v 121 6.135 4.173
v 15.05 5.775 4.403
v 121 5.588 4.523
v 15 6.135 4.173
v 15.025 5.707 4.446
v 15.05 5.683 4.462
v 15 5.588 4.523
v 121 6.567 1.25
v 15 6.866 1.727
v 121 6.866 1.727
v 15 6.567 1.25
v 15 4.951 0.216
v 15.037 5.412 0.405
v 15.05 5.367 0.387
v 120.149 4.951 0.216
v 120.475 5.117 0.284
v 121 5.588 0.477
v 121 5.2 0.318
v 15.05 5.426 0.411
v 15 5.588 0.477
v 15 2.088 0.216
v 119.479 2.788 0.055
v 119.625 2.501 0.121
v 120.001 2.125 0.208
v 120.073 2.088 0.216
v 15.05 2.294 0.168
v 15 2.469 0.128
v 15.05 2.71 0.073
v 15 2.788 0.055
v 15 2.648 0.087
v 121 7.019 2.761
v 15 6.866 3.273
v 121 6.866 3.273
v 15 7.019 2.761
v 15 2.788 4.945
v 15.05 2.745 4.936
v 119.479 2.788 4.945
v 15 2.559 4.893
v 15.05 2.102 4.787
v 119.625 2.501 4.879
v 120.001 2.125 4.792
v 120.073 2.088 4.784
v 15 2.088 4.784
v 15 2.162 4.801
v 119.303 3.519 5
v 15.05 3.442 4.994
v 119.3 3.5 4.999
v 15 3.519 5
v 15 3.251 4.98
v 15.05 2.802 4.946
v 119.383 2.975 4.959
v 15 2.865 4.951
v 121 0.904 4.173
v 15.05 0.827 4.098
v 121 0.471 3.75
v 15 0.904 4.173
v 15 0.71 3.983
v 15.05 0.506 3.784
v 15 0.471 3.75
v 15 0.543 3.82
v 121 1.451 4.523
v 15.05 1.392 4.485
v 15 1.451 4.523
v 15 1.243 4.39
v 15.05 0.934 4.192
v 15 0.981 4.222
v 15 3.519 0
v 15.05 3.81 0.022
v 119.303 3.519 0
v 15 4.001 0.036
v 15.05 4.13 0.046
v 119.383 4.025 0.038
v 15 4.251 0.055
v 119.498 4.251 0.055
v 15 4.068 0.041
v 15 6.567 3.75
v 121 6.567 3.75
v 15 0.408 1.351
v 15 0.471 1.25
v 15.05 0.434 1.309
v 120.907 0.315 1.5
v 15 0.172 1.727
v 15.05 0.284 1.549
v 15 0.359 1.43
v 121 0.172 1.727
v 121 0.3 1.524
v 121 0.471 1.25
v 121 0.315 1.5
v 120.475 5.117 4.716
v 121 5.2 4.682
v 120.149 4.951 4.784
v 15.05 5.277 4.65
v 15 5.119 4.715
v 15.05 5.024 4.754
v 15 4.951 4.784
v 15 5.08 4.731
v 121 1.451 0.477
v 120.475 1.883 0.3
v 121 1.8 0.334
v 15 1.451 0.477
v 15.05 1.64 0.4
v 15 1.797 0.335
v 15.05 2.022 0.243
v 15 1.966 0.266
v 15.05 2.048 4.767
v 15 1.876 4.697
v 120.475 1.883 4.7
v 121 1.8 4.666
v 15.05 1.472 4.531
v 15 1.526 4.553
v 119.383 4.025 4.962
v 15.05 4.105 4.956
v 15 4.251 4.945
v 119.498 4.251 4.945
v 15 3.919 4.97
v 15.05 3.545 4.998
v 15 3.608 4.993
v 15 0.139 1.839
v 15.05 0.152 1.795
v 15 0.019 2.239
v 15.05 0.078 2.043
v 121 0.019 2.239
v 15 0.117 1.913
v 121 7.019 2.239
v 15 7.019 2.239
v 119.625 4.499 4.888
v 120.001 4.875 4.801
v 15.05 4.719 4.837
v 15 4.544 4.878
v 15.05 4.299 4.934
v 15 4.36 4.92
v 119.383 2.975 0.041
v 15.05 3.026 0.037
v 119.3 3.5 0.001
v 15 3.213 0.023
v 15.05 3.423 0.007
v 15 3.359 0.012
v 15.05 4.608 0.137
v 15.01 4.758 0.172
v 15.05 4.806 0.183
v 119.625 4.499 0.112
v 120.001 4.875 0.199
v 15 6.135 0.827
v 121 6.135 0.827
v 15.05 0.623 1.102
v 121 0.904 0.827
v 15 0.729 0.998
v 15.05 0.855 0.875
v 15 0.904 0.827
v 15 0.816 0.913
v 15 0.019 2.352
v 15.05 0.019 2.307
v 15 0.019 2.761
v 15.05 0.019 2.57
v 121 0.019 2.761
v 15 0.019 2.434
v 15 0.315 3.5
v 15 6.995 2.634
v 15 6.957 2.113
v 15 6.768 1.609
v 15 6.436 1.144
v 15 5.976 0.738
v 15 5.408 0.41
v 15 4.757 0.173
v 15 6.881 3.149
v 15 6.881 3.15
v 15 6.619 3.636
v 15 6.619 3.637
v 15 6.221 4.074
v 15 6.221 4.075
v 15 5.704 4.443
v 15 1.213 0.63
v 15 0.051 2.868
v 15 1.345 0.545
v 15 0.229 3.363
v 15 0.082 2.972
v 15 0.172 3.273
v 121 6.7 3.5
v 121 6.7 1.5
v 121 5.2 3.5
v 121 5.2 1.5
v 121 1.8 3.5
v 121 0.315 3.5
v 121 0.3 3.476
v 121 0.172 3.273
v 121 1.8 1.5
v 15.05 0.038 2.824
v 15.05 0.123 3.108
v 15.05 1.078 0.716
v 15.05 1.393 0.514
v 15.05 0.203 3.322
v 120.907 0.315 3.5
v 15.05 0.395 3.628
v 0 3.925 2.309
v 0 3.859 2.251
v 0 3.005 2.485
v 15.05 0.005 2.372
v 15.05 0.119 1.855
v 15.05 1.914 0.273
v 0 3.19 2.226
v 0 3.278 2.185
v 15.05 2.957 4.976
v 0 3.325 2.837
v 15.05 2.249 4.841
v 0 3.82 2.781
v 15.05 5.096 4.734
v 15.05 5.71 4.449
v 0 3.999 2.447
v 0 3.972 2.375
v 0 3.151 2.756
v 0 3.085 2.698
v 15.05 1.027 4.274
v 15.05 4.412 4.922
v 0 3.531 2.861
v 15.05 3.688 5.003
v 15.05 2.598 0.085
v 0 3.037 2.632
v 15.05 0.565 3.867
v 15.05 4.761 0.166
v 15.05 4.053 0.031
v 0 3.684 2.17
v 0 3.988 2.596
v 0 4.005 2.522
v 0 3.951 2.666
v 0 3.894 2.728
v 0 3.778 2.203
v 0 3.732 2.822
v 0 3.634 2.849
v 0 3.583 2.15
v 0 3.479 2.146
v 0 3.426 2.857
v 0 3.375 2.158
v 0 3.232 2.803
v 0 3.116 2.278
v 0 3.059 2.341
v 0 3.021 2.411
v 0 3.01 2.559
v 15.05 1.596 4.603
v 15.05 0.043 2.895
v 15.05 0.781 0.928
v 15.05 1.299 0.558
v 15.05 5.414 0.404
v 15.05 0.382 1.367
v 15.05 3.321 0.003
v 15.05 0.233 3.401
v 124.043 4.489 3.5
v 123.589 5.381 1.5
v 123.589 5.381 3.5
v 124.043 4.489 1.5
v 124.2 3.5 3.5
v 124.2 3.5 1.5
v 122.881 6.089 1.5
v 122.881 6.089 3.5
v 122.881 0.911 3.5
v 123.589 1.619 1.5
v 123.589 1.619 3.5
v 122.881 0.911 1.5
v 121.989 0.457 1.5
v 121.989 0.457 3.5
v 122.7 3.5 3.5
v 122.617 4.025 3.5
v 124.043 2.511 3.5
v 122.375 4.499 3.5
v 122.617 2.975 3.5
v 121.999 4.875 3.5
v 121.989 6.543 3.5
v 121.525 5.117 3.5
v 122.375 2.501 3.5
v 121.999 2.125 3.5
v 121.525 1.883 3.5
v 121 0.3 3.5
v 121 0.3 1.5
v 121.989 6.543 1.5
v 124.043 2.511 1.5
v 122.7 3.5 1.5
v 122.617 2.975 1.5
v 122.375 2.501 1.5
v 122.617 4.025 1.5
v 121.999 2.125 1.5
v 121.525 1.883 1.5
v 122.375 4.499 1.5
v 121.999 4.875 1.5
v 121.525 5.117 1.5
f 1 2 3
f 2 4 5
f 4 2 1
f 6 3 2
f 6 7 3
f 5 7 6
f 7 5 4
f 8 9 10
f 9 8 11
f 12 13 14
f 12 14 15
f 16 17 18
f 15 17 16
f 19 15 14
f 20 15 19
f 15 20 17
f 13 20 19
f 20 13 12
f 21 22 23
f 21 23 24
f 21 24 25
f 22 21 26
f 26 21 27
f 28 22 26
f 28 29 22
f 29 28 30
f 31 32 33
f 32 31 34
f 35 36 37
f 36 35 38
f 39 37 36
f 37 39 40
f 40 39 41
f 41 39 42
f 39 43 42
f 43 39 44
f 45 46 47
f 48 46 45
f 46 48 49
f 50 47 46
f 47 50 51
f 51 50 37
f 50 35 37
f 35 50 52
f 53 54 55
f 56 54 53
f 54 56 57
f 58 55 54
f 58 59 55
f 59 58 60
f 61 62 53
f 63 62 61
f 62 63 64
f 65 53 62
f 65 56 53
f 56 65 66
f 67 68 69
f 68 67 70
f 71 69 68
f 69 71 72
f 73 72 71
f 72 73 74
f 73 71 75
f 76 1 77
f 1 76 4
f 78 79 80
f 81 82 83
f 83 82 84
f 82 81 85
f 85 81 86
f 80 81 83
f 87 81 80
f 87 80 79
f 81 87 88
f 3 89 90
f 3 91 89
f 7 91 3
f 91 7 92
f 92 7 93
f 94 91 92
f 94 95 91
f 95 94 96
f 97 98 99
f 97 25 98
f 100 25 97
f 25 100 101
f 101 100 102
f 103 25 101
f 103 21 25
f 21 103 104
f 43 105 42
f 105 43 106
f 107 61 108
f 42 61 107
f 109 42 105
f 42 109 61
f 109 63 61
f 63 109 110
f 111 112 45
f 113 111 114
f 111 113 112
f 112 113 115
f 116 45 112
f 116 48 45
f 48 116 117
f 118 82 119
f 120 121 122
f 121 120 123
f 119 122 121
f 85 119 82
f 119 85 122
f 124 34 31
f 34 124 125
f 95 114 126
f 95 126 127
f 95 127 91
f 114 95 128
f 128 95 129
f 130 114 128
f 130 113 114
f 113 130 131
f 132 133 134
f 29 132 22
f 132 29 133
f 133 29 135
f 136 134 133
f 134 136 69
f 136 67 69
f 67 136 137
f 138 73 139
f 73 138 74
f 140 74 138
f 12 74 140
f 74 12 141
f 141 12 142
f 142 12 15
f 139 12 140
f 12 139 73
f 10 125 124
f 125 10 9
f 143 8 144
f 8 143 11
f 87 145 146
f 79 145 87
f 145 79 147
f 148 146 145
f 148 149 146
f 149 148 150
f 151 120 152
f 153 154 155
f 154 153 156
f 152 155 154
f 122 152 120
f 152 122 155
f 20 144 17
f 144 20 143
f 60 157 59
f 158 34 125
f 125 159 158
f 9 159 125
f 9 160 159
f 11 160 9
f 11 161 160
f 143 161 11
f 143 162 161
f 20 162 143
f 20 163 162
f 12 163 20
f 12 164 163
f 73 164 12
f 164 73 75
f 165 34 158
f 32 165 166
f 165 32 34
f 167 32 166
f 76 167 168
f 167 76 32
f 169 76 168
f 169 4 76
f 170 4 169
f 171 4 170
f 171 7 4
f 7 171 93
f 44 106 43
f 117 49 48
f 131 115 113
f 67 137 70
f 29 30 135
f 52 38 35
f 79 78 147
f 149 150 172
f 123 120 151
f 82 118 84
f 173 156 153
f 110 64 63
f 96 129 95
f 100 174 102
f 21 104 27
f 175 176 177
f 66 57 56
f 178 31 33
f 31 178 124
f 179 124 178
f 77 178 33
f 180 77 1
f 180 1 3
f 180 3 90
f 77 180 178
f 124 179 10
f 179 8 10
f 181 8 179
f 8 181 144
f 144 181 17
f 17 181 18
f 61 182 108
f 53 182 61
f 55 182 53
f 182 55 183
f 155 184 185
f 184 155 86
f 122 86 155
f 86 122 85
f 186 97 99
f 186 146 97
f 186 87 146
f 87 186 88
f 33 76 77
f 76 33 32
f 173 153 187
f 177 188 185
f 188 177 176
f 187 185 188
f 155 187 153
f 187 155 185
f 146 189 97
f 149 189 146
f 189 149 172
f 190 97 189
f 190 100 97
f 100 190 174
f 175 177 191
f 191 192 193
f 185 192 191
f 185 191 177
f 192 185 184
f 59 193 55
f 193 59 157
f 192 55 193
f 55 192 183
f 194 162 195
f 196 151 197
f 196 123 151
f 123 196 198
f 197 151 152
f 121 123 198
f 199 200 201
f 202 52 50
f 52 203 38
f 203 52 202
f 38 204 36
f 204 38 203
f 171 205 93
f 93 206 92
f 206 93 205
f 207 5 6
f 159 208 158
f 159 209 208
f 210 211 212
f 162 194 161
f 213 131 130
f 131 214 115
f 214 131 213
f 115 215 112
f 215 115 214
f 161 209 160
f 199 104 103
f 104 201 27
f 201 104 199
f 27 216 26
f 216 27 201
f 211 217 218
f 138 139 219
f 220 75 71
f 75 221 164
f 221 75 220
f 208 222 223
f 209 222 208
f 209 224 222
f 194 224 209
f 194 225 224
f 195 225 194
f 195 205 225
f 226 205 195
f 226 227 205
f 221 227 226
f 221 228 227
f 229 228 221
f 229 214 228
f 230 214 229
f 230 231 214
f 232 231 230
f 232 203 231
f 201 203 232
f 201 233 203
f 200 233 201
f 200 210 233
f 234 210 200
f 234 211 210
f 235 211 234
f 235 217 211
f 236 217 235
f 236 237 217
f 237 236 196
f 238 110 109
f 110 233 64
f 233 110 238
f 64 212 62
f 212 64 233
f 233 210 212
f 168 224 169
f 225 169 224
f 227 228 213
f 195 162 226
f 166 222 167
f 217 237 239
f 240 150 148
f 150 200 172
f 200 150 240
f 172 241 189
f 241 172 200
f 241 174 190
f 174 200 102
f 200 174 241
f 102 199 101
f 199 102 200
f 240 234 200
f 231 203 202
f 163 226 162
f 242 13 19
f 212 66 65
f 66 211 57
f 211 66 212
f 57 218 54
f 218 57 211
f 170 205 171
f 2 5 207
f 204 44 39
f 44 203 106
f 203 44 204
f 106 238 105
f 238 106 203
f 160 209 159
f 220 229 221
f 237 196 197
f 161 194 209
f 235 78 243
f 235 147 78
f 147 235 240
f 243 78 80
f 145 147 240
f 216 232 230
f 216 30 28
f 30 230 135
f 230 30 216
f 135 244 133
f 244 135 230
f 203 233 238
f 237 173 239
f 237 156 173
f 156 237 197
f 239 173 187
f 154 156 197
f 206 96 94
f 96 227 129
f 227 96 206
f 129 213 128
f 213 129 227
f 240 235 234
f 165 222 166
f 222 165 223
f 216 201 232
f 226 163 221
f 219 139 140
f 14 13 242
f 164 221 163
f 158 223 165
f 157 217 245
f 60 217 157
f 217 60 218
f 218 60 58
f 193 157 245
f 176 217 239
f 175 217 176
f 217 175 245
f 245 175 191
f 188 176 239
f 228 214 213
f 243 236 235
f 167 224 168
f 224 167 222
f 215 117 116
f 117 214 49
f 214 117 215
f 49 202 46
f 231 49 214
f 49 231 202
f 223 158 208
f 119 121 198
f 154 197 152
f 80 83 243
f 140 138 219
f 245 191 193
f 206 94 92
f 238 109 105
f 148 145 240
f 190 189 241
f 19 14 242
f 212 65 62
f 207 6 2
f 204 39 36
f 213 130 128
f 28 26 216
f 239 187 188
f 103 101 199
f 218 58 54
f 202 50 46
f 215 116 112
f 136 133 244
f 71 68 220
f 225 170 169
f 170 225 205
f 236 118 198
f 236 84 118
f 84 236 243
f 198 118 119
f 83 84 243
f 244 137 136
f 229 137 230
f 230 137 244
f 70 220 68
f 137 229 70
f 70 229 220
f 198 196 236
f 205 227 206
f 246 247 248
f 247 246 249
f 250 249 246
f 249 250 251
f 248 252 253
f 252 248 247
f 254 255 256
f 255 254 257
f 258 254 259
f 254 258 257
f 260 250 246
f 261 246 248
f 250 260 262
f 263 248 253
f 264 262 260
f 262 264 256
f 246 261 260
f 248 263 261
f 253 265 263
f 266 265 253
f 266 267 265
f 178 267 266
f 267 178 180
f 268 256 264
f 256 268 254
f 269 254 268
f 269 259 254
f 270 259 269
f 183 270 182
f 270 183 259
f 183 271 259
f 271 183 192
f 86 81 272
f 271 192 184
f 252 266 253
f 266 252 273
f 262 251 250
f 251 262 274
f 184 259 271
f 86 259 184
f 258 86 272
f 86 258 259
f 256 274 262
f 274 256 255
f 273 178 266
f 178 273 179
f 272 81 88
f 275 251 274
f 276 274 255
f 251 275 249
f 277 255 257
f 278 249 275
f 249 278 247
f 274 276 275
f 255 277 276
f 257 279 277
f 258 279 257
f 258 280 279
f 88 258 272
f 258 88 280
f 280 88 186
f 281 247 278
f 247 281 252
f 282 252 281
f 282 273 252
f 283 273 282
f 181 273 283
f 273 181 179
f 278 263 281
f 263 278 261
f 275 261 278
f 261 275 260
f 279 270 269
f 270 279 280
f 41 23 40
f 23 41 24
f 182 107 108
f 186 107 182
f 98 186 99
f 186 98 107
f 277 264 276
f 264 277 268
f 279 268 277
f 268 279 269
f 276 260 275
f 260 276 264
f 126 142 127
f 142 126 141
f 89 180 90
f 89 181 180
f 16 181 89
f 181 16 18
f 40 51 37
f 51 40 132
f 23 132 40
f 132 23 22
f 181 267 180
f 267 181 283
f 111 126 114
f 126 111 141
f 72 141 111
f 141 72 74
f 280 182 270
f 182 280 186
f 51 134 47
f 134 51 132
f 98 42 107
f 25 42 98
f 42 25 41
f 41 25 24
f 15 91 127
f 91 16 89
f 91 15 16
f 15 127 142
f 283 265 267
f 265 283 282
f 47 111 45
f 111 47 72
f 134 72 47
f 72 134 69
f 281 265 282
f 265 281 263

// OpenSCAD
difference() {
    union() {
        resize([106, 7, 5]){
            translate([15, 2.5, 2.5] ) {
                rotate([0, 90, 0]) {
                    cylinder(h=106, r=2.5, $fn=30);
                }
            }
                //cube([106,7,5],false);
        }
        resize([15.05, 7, 5]) {
            translate([0, 3.5, 3.5] ) {
                rotate([0, 90, 0]) {
                    rotate([0, 0, 45]) {
                        cylinder(h=15, r1=0.5, r2=3.5, center=false, $fn=30);
                    }
                }
            }
        }

        translate([121, 3.5, 1.5]) {
            cylinder(h=2, r=3.2, $fn=20);
        }
    }
    translate([121, 3.5, -3]) {
        cylinder(h=10, r=1.7, $fn=20);
    }
}
